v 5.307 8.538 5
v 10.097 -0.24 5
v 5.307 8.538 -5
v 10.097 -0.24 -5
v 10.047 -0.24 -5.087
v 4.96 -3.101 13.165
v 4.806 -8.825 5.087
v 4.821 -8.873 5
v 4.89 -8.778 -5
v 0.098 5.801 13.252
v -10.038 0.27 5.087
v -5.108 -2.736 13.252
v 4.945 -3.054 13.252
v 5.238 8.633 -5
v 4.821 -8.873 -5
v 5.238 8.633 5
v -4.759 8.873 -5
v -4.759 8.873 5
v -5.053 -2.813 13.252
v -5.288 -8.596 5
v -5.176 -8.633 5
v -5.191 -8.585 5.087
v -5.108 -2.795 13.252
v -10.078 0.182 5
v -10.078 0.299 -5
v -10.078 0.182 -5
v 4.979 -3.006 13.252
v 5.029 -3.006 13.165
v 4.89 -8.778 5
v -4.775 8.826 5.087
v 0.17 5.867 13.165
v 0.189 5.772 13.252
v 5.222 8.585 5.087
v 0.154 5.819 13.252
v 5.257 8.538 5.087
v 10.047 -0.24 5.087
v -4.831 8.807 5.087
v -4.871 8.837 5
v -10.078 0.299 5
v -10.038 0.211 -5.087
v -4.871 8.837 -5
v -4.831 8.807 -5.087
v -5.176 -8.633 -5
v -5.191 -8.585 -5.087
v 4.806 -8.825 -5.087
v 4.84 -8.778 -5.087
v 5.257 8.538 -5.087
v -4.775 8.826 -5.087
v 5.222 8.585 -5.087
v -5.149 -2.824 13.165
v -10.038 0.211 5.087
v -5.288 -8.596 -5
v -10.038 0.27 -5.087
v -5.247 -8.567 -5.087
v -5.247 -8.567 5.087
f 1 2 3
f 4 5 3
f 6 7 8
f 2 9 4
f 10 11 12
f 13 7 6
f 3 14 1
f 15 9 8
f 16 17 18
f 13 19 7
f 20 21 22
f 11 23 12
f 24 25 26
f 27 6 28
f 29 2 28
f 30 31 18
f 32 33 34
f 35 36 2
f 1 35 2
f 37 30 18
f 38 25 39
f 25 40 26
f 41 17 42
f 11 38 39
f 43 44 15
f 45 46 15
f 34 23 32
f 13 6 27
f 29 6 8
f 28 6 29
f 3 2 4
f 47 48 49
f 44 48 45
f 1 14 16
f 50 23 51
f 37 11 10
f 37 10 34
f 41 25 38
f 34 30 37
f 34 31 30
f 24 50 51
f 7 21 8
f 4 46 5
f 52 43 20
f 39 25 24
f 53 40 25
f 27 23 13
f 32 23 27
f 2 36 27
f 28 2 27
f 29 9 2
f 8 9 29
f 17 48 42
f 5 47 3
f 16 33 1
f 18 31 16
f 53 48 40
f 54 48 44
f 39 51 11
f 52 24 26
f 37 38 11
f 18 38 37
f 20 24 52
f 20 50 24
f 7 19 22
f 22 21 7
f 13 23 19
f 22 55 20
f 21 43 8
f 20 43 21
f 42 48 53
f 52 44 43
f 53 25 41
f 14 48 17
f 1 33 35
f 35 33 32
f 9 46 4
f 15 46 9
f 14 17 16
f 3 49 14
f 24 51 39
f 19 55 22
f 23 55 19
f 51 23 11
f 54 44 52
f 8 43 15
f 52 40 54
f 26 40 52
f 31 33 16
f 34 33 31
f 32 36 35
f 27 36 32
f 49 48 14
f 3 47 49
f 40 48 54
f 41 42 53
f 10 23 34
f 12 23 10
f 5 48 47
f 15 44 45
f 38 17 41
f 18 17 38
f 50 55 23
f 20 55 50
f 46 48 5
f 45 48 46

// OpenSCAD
// Auto-generated OpenSCAD file

    inner_points = 10*[[-0.5206742858014932, -0.8537545783635307, 0.5000000000005902], [0.5206728937674587, 0.8537570765312255, -0.5000000000005902], [-0.9997117261075887, 0.024039891191902935, -0.5000000000008494], [0.9997103340735543, -0.024037393024208206, 0.5000000000008494], [-0.47903813632434417, 0.877795718641069, 0.4999999999985605], [0.47903674429030957, -0.8777932204733743, -0.4999999999985605], [-0.47903813632352327, 0.8777957186398769, -0.5000000000014396], [0.47903674428948867, -0.8777932204721822, 0.5000000000014396], [0.5206728937666378, 0.8537570765324173, 0.4999999999994098], [-0.5206742858006723, -0.8537545783647226, -0.4999999999994098], [-0.9997117261084095, 0.024039891193094905, 0.49999999999915057], [0.999710334074375, -0.024037393025400176, -0.49999999999915057], [0.013878020474284998, 0.5771846814202832, 1.3164965809270497], [-0.5067955693097805, -0.2765711460276909, 1.3164965809276397], [0.4929154607812014, -0.30060978813634254, 1.3164965809284892]];

    outer_points = 10*[[-0.009559115747354546, -0.4376223667561964, 1.0287834016063993], [0.009559115747354546, 0.4376223667561964, -1.0287834016063993], [-0.4072695443938975, -1.0226427455134965, -0.19578900188162973], [0.4072695443938975, 1.0226427455134965, 0.19578900188162973], [-1.0847562624532703, 0.21822357574934653, -0.1602570499403399], [1.0847562624532703, -0.21822357574934653, 0.1602570499403399], [-0.6267257065821188, -0.3172723939217513, -0.8698006189721327], [0.6267257065821188, 0.3172723939217513, 0.8698006189721327], [-0.448471440123797, 0.9731183364272943, -0.31923983257460653], [0.448471440123797, -0.9731183364272943, 0.31923983257460653], [-0.8653001002650492, -0.4871467758423988, 0.513754567150163], [0.8653001002650492, 0.4871467758423988, -0.513754567150163], [-0.9613947096667688, 0.9235939273410919, 0.5377648654673648], [-0.7419385474785475, 0.21822357574934653, 1.2117764825578676], [-0.10565372514907426, 0.9731183364272943, 1.052793699923601]];

    // Convex hull for inner set (I)
    module inner_hull() {
        hull() {
            for (p = inner_points) {
                translate(p) sphere(r=0.1);
            }
        }
    }

    // Convex hull for outer set (O) minus inner hull (O \ I)
    module outer_minus_inner() {
        difference() {
            hull() {
                for (p = outer_points) {
                    translate(p) sphere(r=0.1);
                }
            }
            inner_hull(); // Subtract inner hull
        }
    }

    // Convex hull for outer set (O) minus all translated inner hulls
    module outer_minus_AllTranslationInner() {
        difference() {
            hull() {
                for (p = outer_points) {
                    translate(p) sphere(r=0.1);
                }
            }
            hull() {
                translate([0,0,50]) inner_hull();
                translate([0,0,-50]) inner_hull();
            }; // Subtract translated inner hulls
        }
    }

    // Difference between outer_minus_inner and outer_minus_AllTranslationInner
    module outer_minus_inner_diff() {
        difference() {
            // Outer minus inner
            difference() {
                hull() {
                    for (p = outer_points) {
                        translate(p) sphere(r=0.1);
                    }
                }
                inner_hull();
            }

            // Subtract Outer minus AllTranslationInner
            difference() {
                hull() {
                    for (p = outer_points) {
                        translate(p) sphere(r=0.1);
                    }
                }
                hull() {
                    translate([0,0,50]) inner_hull();
                    translate([0,0,-50]) inner_hull();
                };
            }
        }
    }

    // Rendering all with colors applied
    color([1, 0, 0, 0.5]) inner_hull(); // Transparent red
    
